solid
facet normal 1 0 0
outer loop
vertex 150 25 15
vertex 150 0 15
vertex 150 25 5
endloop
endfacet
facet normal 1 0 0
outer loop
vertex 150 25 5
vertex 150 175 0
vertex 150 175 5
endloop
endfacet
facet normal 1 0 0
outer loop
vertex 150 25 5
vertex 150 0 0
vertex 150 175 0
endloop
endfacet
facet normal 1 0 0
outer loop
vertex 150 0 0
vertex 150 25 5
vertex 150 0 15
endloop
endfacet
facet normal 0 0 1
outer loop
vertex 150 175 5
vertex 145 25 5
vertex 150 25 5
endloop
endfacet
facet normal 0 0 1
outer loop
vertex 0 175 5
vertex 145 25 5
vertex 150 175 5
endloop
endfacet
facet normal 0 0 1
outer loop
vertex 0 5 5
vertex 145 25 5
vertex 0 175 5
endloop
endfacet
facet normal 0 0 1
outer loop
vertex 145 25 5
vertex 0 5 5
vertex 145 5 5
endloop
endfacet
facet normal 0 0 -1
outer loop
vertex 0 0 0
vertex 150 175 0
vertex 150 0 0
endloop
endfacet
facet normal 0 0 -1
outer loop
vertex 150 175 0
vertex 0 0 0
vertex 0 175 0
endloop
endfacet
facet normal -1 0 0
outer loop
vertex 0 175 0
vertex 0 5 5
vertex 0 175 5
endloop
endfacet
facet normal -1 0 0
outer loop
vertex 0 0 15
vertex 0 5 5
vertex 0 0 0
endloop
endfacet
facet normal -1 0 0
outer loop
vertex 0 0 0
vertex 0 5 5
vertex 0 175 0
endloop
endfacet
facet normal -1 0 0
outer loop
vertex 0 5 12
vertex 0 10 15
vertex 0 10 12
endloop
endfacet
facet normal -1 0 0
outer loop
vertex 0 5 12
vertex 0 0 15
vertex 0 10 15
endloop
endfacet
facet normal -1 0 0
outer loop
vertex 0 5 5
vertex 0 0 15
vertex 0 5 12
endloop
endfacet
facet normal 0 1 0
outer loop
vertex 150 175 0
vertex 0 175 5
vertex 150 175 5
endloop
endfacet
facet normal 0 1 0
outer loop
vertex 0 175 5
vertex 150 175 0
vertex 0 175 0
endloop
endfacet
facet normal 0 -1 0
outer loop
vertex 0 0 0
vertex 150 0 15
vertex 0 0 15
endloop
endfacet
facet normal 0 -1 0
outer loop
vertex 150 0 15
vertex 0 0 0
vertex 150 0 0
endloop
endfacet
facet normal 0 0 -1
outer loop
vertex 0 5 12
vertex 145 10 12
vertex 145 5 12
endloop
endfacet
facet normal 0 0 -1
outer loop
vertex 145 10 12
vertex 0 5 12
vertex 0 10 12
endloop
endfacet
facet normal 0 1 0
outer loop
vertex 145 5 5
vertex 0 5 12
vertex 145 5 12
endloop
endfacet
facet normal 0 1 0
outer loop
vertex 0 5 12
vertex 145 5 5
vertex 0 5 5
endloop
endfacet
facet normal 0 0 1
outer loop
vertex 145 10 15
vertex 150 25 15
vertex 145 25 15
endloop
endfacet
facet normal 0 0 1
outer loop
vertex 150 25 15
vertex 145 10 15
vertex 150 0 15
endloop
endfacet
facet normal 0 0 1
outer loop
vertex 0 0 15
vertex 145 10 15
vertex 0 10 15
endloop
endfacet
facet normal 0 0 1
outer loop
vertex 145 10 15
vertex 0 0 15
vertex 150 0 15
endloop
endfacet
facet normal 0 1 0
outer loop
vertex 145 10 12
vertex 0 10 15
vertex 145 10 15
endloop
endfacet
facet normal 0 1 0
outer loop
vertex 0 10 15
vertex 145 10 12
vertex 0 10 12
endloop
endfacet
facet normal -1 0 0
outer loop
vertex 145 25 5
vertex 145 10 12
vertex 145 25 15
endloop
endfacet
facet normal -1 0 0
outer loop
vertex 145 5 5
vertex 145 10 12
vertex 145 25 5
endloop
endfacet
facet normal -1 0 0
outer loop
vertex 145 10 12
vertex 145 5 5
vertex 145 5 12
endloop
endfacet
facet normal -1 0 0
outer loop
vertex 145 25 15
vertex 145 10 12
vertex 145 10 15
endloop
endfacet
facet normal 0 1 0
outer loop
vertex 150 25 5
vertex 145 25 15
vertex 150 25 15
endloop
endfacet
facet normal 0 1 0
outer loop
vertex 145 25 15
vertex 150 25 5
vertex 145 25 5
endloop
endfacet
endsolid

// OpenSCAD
cube([150, 175, 5]);
cube([150, 5, 12]);
translate([0, 0, 12])
    cube([150, 10, 3]);
translate([145, 0, 0])
    cube([5, 25, 15]);
